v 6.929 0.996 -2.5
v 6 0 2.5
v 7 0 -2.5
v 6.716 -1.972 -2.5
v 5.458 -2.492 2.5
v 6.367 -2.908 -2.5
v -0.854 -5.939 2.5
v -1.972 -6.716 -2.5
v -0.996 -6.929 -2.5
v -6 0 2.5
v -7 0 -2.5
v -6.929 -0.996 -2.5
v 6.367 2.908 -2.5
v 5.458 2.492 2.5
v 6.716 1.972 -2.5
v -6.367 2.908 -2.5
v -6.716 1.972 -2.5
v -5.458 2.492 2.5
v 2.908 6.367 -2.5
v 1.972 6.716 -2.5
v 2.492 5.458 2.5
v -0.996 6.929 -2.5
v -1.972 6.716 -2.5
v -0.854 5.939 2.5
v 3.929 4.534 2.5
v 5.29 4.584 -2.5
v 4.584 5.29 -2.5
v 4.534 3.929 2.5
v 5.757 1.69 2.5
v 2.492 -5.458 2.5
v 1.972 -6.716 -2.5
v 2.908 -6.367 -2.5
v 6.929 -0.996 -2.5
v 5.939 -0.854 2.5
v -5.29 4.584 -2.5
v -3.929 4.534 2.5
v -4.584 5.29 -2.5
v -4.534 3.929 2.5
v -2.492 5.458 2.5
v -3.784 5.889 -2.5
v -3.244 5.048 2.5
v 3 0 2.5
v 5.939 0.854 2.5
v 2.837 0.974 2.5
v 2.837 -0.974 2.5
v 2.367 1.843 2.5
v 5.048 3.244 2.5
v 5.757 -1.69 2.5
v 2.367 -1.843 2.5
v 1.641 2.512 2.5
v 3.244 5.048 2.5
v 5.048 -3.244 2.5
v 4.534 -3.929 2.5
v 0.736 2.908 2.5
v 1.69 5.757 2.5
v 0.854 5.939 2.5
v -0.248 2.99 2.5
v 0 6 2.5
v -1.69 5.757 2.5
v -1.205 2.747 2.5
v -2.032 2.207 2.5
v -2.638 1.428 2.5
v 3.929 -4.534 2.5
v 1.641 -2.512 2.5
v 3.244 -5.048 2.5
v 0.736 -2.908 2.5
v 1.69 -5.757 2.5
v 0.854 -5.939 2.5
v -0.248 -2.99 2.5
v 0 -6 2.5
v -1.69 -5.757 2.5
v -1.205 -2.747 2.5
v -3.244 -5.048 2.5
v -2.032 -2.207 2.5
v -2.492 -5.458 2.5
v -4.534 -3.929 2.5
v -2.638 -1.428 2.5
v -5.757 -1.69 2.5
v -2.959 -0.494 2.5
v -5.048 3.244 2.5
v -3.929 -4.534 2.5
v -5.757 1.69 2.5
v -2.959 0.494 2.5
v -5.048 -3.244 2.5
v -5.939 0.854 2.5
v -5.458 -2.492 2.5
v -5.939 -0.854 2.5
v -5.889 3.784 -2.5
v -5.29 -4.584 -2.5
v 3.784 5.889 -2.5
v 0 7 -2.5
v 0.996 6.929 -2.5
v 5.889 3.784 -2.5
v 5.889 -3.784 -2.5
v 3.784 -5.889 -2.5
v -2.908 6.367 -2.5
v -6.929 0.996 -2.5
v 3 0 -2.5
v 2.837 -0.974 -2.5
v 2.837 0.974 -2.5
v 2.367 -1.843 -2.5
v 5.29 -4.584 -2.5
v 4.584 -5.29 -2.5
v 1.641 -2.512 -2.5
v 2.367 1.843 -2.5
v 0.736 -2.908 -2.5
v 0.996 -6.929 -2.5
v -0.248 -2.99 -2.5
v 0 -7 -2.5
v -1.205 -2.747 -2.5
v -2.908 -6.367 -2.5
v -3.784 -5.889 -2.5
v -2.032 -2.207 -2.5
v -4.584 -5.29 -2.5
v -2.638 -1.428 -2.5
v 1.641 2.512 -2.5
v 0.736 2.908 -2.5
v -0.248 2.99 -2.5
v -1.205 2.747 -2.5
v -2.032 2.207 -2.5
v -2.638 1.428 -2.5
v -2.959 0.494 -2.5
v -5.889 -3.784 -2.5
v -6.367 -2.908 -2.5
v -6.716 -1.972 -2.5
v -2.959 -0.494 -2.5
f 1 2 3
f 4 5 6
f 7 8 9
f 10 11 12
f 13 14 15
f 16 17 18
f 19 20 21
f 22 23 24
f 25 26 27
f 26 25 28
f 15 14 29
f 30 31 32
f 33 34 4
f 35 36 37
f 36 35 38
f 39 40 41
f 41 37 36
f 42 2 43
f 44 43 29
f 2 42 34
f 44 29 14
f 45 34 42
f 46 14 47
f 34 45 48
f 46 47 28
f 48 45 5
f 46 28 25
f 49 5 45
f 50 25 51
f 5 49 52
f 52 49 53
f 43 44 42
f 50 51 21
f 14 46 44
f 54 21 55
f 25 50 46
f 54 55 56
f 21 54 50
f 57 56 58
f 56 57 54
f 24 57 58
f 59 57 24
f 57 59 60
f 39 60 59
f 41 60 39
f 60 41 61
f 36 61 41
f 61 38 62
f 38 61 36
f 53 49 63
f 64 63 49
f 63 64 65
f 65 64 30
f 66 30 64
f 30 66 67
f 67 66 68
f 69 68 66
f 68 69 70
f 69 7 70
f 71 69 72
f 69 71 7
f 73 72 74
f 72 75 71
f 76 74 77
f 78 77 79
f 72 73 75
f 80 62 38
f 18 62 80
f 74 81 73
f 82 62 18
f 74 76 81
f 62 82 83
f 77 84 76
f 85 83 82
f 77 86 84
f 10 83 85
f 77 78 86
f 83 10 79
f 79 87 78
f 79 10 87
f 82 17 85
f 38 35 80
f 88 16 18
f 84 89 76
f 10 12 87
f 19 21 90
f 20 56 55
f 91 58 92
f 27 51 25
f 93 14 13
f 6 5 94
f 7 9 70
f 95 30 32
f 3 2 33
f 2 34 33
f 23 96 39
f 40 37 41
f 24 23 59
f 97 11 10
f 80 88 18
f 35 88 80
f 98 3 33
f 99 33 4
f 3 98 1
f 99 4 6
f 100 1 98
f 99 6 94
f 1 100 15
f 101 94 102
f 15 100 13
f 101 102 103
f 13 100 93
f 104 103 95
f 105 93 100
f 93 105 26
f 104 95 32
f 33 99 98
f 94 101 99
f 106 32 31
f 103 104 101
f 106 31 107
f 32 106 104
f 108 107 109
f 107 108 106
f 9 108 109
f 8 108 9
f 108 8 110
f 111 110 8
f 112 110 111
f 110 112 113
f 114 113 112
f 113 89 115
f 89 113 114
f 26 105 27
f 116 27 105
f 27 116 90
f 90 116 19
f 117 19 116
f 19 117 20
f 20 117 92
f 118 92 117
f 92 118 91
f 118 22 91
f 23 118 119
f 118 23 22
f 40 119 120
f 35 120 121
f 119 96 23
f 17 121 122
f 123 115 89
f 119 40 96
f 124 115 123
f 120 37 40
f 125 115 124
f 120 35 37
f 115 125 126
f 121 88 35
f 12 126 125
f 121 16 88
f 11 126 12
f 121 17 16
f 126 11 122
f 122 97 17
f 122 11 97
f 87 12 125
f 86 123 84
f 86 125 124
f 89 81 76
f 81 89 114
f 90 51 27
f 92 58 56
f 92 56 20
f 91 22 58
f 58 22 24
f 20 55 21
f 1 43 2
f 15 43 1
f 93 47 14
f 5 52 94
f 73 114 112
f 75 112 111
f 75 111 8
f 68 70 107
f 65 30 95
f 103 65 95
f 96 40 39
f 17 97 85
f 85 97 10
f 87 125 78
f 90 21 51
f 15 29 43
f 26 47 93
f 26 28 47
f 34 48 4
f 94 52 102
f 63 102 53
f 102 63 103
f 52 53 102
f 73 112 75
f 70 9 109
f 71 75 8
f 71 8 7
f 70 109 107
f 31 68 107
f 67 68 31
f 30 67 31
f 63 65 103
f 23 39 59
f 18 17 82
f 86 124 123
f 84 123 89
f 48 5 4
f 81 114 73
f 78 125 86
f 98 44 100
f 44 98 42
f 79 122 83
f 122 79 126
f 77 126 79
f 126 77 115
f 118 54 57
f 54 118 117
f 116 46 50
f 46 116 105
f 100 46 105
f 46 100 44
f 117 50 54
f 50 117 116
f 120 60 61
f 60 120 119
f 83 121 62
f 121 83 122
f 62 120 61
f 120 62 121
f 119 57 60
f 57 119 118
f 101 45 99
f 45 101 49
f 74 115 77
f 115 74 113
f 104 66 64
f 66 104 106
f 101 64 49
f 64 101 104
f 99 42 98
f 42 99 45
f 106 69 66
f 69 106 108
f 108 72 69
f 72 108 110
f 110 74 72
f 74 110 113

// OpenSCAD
$fs = 1;
$fa = 6;

difference() {
    cylinder(d1=14, d2=12, h=5, center=true);
    cylinder(d=6, h=6, center=true);
}
